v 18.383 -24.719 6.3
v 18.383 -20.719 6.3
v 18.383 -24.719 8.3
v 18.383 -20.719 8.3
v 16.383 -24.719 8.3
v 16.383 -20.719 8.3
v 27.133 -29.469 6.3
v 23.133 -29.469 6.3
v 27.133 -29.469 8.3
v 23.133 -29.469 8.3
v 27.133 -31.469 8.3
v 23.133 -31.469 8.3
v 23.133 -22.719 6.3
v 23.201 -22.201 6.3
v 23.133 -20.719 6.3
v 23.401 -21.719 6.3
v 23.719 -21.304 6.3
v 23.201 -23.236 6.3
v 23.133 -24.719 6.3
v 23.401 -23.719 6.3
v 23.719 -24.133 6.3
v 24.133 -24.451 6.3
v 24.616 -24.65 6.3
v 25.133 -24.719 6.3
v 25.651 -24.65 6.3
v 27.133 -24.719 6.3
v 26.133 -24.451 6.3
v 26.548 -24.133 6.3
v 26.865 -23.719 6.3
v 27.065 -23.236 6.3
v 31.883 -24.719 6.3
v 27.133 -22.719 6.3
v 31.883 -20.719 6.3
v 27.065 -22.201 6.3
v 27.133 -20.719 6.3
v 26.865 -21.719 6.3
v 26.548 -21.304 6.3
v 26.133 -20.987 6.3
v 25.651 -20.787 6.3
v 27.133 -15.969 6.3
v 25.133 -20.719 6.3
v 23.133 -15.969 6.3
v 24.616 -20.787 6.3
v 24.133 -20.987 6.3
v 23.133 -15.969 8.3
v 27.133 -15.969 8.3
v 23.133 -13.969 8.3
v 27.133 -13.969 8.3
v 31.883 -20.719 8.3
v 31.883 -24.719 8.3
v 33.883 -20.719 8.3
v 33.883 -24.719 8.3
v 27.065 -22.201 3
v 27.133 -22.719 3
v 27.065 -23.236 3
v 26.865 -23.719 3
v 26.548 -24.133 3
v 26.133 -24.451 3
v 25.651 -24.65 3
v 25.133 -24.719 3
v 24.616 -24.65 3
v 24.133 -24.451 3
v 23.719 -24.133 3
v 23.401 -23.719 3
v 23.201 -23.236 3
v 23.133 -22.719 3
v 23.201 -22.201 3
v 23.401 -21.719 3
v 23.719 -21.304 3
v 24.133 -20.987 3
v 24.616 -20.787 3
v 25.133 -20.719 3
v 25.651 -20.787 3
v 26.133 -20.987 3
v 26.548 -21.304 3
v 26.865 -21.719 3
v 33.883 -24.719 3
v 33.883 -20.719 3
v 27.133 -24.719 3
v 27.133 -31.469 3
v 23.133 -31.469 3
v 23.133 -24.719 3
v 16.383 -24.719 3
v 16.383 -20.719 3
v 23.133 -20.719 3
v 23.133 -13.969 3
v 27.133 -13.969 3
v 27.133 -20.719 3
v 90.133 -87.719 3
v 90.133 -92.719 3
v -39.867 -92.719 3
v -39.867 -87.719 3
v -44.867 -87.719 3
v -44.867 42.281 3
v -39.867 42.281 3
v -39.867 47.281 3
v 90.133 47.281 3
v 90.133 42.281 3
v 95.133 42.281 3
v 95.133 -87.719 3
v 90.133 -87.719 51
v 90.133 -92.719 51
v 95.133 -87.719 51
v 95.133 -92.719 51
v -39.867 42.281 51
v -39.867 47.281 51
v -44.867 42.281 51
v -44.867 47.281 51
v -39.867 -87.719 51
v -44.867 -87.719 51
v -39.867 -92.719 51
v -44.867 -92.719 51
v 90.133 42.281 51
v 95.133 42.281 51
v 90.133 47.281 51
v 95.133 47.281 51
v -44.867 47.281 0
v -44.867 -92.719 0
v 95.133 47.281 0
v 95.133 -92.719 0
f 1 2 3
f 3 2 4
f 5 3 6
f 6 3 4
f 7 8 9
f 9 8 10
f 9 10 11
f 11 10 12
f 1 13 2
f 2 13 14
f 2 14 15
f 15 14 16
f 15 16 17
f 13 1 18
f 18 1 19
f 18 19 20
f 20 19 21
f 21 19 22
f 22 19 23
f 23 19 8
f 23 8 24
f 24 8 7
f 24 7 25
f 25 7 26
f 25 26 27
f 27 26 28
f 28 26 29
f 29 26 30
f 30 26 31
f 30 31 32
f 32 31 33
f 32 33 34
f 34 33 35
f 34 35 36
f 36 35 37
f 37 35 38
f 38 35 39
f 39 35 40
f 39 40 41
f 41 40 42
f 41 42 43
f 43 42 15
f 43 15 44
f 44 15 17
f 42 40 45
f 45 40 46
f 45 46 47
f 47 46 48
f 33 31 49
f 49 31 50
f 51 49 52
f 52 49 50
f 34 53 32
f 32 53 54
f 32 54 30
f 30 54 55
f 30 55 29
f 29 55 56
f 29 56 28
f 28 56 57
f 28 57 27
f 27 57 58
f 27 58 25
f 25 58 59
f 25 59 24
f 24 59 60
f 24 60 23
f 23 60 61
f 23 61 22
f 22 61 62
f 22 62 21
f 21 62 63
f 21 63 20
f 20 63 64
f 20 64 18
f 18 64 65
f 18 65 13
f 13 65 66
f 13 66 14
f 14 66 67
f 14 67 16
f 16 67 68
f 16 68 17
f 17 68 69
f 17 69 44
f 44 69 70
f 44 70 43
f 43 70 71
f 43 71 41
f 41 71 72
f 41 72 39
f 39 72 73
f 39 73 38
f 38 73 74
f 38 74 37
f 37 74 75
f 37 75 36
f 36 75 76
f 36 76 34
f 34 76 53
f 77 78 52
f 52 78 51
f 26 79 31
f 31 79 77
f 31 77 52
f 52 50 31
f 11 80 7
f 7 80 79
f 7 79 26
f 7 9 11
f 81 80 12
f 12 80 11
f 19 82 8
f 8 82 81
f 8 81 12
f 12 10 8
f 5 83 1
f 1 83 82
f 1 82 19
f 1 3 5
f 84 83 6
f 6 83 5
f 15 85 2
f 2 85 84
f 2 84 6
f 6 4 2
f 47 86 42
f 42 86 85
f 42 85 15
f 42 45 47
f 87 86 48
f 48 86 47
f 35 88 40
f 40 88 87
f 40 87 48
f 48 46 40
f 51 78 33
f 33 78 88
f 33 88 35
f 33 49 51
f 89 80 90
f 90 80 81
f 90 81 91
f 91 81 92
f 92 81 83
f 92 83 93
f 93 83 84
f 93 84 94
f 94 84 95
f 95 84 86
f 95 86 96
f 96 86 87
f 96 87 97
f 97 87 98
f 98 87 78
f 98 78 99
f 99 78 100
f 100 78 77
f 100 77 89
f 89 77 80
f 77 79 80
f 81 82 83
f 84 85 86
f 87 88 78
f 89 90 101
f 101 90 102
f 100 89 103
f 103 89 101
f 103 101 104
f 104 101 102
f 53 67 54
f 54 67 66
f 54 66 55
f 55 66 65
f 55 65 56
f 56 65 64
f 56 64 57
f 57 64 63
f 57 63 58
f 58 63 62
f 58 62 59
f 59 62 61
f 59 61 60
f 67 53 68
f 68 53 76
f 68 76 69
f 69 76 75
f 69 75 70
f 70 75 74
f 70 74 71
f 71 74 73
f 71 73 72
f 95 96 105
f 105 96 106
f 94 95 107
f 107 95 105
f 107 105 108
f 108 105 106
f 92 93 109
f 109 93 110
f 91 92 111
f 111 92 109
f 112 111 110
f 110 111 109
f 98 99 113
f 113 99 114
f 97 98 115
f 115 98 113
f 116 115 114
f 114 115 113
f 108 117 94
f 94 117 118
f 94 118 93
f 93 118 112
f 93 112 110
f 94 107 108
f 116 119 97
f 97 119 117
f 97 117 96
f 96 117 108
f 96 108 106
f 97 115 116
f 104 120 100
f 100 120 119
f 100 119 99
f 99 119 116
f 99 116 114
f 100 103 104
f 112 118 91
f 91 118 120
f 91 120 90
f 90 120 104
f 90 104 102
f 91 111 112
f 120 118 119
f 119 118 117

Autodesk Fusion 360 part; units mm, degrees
sketch "Sketch1" plane through (0, 0, 0) normal (0, 0, 1) x (1, 0, 0)
  line L0 (-44.8667, 47.2814) -> (95.1333, 47.2814)
  line L1 (95.1333, 47.2814) -> (95.1333, -92.7186)
  line L2 (95.1333, -92.7186) -> (-44.8667, -92.7186)
  line L3 (-44.8667, -92.7186) -> (-44.8667, 47.2814)
  dimension "d1" = 140
  dimension "d2" = 140
extrude "Extrude1" add sketch "Sketch1" along normal blind 3
sketch "Sketch2" plane through (0, 0, 3) normal (0, 0, 1) x (-1, 0, 0)
  line L0 (44.8667, 92.7186) -> (-95.1333, 92.7186)
  line L1 (-95.1333, 92.7186) -> (-95.1333, -47.2814)
  line L2 (-95.1333, -47.2814) -> (44.8667, -47.2814)
  line L3 (44.8667, -47.2814) -> (44.8667, 92.7186)
  line L4 (44.8667, -47.2814) -> (39.8667, -47.2814)
  line L5 (39.8667, -47.2814) -> (39.8667, -42.2814)
  line L6 (39.8667, -42.2814) -> (44.8667, -42.2814)
  line L7 (44.8667, -42.2814) -> (44.8667, -47.2814)
  line L8 (44.8667, 92.7186) -> (39.8667, 92.7186)
  line L9 (39.8667, 92.7186) -> (39.8667, 87.7186)
  line L10 (39.8667, 87.7186) -> (44.8667, 87.7186)
  line L11 (44.8667, 87.7186) -> (44.8667, 92.7186)
  line L12 (-95.1333, 92.7186) -> (-90.1333, 92.7186)
  line L13 (-90.1333, 92.7186) -> (-90.1333, 87.7186)
  line L14 (-90.1333, 87.7186) -> (-95.1333, 87.7186)
  line L15 (-95.1333, 87.7186) -> (-95.1333, 92.7186)
  line L16 (-95.1333, -47.2814) -> (-90.1333, -47.2814)
  line L17 (-90.1333, -47.2814) -> (-90.1333, -42.2814)
  line L18 (-90.1333, -42.2814) -> (-95.1333, -42.2814)
  line L19 (-95.1333, -42.2814) -> (-95.1333, -47.2814)
  dimension "d5" = 5
  dimension "d6" = 5
  dimension "d7" = 5
  dimension "d8" = 5
  dimension "d9" = 5
  dimension "d10" = 5
  dimension "d11" = 5
  dimension "d12" = 5
extrude "Extrude2" add sketch "Sketch2" along normal blind 48 contours L0 L3 L8 L9 L10 L11 | L0 L1 L12 L13 L14 L15 | L2 L3 L4 L5 L6 L7 | L1 L2 L16 L17 L18 L19
sketch "Sketch3" plane through (0, 0, 3) normal (0, 0, 1) x (-1, 0, 0)
  line L0 (-90.1333, 92.7186) -> (-90.1333, 87.7186)
  line L1 (-90.1333, 87.7186) -> (-95.1333, 87.7186)
  line L2 (-95.1333, 87.7186) -> (-95.1333, -42.2814)
  line L3 (-95.1333, -42.2814) -> (-90.1333, -42.2814)
  line L4 (-90.1333, -42.2814) -> (-90.1333, -47.2814)
  line L5 (-90.1333, -47.2814) -> (39.8667, -47.2814)
  line L6 (39.8667, -47.2814) -> (39.8667, -42.2814)
  line L7 (39.8667, -42.2814) -> (44.8667, -42.2814)
  line L8 (44.8667, -42.2814) -> (44.8667, 87.7186)
  line L9 (44.8667, 87.7186) -> (39.8667, 87.7186)
  line L10 (39.8667, 87.7186) -> (39.8667, 92.7186)
  line L11 (39.8667, 92.7186) -> (-90.1333, 92.7186)
  circle A0 centre (-25.1333, 22.7186) radius 2
  line L12 (-27.1333, 31.4686) -> (-23.1333, 31.4686)
  line L13 (-23.1333, 31.4686) -> (-23.1333, 13.9686)
  line L14 (-23.1333, 13.9686) -> (-27.1333, 13.9686)
  line L15 (-27.1333, 13.9686) -> (-27.1333, 31.4686)
  line L16 (-33.8833, 24.7186) -> (-16.3833, 24.7186)
  line L17 (-16.3833, 24.7186) -> (-16.3833, 20.7186)
  line L18 (-16.3833, 20.7186) -> (-33.8833, 20.7186)
  line L19 (-33.8833, 20.7186) -> (-33.8833, 24.7186)
  dimension "d15" = 4
  dimension "d16" = 70
  dimension "d17" = 70
  dimension "d18" = 4
  dimension "d19" = 17.5
  dimension "d20" = 8.75
  dimension "d21" = 2
  dimension "d22" = 17.5
  dimension "d23" = 4
  dimension "d24" = 2
  dimension "d25" = 8.75
extrude "Extrude3" add sketch "Sketch3" along normal blind 3.3 contours A0 L13 L18 | A0 L13 L16 | L13 L16 L17 L18 | A0 L15 L16 | L12 L13 L15 L16 | A0 L15 L18 | L13 L14 L15 L18 | L15 L16 L18 L19
sketch "Sketch4" plane through (0, 0, 6.3) normal (0, 0, 1) x (-1, 0, 0)
  circle A0 centre (-25.1333, 22.7186) radius 2
  line L0 (-33.8833, 20.7186) -> (-27.1333, 20.7186)
  line L1 (-27.1333, 20.7186) -> (-27.1333, 13.9686)
  line L2 (-27.1333, 13.9686) -> (-23.1333, 13.9686)
  line L3 (-23.1333, 13.9686) -> (-23.1333, 20.7186)
  line L4 (-23.1333, 20.7186) -> (-16.3833, 20.7186)
  line L5 (-16.3833, 20.7186) -> (-16.3833, 24.7186)
  line L6 (-16.3833, 24.7186) -> (-23.1333, 24.7186)
  line L7 (-23.1333, 24.7186) -> (-23.1333, 31.4686)
  line L8 (-23.1333, 31.4686) -> (-27.1333, 31.4686)
  line L9 (-27.1333, 31.4686) -> (-27.1333, 24.7186)
  line L10 (-27.1333, 24.7186) -> (-33.8833, 24.7186)
  line L11 (-33.8833, 24.7186) -> (-33.8833, 20.7186)
  line L12 (-27.1333, 31.4686) -> (-23.1333, 31.4686)
  line L13 (-23.1333, 31.4686) -> (-23.1333, 29.4686)
  line L14 (-23.1333, 29.4686) -> (-27.1333, 29.4686)
  line L15 (-27.1333, 29.4686) -> (-27.1333, 31.4686)
  line L16 (-16.3833, 24.7186) -> (-18.3833, 24.7186)
  line L17 (-18.3833, 24.7186) -> (-18.3833, 20.7186)
  line L18 (-18.3833, 20.7186) -> (-16.3833, 20.7186)
  line L19 (-16.3833, 20.7186) -> (-16.3833, 24.7186)
  line L20 (-23.1333, 13.9686) -> (-27.1333, 13.9686)
  line L21 (-27.1333, 13.9686) -> (-27.1333, 15.9686)
  line L22 (-27.1333, 15.9686) -> (-23.1333, 15.9686)
  line L23 (-23.1333, 15.9686) -> (-23.1333, 13.9686)
  line L24 (-33.8833, 24.7186) -> (-31.8833, 24.7186)
  line L25 (-31.8833, 24.7186) -> (-31.8833, 20.7186)
  line L26 (-31.8833, 20.7186) -> (-33.8833, 20.7186)
  line L27 (-33.8833, 20.7186) -> (-33.8833, 24.7186)
  dimension "d28" = 2
  dimension "d29" = 2
  dimension "d30" = 4
  dimension "d31" = 4
  dimension "d32" = 2
  dimension "d33" = 2
  dimension "d34" = 4
  dimension "d40" = 4
extrude "Extrude4" add sketch "Sketch4" along normal blind 2 contours L0 L10 L11 L24 L25 L26 L27 | L1 L2 L3 L20 L21 L22 L23 | L7 L8 L9 L12 L13 L14 L15 | L4 L5 L6 L16 L17 L18 L19
sketch "Sketch5" plane through (0, 0, 6.3) normal (0, 0, 1) x (-1, 0, 0)
  line L0 (-18.3833, 20.7186) -> (-18.3833, 24.7186)
  line L1 (-18.3833, 24.7186) -> (-23.1333, 24.7186)
  line L2 (-23.1333, 24.7186) -> (-23.1333, 29.4686)
  line L3 (-27.1333, 29.4686) -> (-27.1333, 24.7186)
  line L4 (-27.1333, 24.7186) -> (-31.8833, 24.7186)
  line L5 (-31.8833, 24.7186) -> (-31.8833, 20.7186)
  line L6 (-31.8833, 20.7186) -> (-27.1333, 20.7186)
  line L7 (-27.1333, 20.7186) -> (-27.1333, 15.9686)
  line L8 (-27.1333, 15.9686) -> (-23.1333, 15.9686)
  line L9 (-23.1333, 15.9686) -> (-23.1333, 20.7186)
  line L10 (-23.1333, 20.7186) -> (-18.3833, 20.7186)
  circle A0 centre (-25.1333, 22.7186) radius 2
  circle A1 centre (-25.1333, 22.7186) radius 16
  line L11 (-23.1333, 29.4686) -> (-27.1333, 29.4686)
  dimension "d37" = 32
